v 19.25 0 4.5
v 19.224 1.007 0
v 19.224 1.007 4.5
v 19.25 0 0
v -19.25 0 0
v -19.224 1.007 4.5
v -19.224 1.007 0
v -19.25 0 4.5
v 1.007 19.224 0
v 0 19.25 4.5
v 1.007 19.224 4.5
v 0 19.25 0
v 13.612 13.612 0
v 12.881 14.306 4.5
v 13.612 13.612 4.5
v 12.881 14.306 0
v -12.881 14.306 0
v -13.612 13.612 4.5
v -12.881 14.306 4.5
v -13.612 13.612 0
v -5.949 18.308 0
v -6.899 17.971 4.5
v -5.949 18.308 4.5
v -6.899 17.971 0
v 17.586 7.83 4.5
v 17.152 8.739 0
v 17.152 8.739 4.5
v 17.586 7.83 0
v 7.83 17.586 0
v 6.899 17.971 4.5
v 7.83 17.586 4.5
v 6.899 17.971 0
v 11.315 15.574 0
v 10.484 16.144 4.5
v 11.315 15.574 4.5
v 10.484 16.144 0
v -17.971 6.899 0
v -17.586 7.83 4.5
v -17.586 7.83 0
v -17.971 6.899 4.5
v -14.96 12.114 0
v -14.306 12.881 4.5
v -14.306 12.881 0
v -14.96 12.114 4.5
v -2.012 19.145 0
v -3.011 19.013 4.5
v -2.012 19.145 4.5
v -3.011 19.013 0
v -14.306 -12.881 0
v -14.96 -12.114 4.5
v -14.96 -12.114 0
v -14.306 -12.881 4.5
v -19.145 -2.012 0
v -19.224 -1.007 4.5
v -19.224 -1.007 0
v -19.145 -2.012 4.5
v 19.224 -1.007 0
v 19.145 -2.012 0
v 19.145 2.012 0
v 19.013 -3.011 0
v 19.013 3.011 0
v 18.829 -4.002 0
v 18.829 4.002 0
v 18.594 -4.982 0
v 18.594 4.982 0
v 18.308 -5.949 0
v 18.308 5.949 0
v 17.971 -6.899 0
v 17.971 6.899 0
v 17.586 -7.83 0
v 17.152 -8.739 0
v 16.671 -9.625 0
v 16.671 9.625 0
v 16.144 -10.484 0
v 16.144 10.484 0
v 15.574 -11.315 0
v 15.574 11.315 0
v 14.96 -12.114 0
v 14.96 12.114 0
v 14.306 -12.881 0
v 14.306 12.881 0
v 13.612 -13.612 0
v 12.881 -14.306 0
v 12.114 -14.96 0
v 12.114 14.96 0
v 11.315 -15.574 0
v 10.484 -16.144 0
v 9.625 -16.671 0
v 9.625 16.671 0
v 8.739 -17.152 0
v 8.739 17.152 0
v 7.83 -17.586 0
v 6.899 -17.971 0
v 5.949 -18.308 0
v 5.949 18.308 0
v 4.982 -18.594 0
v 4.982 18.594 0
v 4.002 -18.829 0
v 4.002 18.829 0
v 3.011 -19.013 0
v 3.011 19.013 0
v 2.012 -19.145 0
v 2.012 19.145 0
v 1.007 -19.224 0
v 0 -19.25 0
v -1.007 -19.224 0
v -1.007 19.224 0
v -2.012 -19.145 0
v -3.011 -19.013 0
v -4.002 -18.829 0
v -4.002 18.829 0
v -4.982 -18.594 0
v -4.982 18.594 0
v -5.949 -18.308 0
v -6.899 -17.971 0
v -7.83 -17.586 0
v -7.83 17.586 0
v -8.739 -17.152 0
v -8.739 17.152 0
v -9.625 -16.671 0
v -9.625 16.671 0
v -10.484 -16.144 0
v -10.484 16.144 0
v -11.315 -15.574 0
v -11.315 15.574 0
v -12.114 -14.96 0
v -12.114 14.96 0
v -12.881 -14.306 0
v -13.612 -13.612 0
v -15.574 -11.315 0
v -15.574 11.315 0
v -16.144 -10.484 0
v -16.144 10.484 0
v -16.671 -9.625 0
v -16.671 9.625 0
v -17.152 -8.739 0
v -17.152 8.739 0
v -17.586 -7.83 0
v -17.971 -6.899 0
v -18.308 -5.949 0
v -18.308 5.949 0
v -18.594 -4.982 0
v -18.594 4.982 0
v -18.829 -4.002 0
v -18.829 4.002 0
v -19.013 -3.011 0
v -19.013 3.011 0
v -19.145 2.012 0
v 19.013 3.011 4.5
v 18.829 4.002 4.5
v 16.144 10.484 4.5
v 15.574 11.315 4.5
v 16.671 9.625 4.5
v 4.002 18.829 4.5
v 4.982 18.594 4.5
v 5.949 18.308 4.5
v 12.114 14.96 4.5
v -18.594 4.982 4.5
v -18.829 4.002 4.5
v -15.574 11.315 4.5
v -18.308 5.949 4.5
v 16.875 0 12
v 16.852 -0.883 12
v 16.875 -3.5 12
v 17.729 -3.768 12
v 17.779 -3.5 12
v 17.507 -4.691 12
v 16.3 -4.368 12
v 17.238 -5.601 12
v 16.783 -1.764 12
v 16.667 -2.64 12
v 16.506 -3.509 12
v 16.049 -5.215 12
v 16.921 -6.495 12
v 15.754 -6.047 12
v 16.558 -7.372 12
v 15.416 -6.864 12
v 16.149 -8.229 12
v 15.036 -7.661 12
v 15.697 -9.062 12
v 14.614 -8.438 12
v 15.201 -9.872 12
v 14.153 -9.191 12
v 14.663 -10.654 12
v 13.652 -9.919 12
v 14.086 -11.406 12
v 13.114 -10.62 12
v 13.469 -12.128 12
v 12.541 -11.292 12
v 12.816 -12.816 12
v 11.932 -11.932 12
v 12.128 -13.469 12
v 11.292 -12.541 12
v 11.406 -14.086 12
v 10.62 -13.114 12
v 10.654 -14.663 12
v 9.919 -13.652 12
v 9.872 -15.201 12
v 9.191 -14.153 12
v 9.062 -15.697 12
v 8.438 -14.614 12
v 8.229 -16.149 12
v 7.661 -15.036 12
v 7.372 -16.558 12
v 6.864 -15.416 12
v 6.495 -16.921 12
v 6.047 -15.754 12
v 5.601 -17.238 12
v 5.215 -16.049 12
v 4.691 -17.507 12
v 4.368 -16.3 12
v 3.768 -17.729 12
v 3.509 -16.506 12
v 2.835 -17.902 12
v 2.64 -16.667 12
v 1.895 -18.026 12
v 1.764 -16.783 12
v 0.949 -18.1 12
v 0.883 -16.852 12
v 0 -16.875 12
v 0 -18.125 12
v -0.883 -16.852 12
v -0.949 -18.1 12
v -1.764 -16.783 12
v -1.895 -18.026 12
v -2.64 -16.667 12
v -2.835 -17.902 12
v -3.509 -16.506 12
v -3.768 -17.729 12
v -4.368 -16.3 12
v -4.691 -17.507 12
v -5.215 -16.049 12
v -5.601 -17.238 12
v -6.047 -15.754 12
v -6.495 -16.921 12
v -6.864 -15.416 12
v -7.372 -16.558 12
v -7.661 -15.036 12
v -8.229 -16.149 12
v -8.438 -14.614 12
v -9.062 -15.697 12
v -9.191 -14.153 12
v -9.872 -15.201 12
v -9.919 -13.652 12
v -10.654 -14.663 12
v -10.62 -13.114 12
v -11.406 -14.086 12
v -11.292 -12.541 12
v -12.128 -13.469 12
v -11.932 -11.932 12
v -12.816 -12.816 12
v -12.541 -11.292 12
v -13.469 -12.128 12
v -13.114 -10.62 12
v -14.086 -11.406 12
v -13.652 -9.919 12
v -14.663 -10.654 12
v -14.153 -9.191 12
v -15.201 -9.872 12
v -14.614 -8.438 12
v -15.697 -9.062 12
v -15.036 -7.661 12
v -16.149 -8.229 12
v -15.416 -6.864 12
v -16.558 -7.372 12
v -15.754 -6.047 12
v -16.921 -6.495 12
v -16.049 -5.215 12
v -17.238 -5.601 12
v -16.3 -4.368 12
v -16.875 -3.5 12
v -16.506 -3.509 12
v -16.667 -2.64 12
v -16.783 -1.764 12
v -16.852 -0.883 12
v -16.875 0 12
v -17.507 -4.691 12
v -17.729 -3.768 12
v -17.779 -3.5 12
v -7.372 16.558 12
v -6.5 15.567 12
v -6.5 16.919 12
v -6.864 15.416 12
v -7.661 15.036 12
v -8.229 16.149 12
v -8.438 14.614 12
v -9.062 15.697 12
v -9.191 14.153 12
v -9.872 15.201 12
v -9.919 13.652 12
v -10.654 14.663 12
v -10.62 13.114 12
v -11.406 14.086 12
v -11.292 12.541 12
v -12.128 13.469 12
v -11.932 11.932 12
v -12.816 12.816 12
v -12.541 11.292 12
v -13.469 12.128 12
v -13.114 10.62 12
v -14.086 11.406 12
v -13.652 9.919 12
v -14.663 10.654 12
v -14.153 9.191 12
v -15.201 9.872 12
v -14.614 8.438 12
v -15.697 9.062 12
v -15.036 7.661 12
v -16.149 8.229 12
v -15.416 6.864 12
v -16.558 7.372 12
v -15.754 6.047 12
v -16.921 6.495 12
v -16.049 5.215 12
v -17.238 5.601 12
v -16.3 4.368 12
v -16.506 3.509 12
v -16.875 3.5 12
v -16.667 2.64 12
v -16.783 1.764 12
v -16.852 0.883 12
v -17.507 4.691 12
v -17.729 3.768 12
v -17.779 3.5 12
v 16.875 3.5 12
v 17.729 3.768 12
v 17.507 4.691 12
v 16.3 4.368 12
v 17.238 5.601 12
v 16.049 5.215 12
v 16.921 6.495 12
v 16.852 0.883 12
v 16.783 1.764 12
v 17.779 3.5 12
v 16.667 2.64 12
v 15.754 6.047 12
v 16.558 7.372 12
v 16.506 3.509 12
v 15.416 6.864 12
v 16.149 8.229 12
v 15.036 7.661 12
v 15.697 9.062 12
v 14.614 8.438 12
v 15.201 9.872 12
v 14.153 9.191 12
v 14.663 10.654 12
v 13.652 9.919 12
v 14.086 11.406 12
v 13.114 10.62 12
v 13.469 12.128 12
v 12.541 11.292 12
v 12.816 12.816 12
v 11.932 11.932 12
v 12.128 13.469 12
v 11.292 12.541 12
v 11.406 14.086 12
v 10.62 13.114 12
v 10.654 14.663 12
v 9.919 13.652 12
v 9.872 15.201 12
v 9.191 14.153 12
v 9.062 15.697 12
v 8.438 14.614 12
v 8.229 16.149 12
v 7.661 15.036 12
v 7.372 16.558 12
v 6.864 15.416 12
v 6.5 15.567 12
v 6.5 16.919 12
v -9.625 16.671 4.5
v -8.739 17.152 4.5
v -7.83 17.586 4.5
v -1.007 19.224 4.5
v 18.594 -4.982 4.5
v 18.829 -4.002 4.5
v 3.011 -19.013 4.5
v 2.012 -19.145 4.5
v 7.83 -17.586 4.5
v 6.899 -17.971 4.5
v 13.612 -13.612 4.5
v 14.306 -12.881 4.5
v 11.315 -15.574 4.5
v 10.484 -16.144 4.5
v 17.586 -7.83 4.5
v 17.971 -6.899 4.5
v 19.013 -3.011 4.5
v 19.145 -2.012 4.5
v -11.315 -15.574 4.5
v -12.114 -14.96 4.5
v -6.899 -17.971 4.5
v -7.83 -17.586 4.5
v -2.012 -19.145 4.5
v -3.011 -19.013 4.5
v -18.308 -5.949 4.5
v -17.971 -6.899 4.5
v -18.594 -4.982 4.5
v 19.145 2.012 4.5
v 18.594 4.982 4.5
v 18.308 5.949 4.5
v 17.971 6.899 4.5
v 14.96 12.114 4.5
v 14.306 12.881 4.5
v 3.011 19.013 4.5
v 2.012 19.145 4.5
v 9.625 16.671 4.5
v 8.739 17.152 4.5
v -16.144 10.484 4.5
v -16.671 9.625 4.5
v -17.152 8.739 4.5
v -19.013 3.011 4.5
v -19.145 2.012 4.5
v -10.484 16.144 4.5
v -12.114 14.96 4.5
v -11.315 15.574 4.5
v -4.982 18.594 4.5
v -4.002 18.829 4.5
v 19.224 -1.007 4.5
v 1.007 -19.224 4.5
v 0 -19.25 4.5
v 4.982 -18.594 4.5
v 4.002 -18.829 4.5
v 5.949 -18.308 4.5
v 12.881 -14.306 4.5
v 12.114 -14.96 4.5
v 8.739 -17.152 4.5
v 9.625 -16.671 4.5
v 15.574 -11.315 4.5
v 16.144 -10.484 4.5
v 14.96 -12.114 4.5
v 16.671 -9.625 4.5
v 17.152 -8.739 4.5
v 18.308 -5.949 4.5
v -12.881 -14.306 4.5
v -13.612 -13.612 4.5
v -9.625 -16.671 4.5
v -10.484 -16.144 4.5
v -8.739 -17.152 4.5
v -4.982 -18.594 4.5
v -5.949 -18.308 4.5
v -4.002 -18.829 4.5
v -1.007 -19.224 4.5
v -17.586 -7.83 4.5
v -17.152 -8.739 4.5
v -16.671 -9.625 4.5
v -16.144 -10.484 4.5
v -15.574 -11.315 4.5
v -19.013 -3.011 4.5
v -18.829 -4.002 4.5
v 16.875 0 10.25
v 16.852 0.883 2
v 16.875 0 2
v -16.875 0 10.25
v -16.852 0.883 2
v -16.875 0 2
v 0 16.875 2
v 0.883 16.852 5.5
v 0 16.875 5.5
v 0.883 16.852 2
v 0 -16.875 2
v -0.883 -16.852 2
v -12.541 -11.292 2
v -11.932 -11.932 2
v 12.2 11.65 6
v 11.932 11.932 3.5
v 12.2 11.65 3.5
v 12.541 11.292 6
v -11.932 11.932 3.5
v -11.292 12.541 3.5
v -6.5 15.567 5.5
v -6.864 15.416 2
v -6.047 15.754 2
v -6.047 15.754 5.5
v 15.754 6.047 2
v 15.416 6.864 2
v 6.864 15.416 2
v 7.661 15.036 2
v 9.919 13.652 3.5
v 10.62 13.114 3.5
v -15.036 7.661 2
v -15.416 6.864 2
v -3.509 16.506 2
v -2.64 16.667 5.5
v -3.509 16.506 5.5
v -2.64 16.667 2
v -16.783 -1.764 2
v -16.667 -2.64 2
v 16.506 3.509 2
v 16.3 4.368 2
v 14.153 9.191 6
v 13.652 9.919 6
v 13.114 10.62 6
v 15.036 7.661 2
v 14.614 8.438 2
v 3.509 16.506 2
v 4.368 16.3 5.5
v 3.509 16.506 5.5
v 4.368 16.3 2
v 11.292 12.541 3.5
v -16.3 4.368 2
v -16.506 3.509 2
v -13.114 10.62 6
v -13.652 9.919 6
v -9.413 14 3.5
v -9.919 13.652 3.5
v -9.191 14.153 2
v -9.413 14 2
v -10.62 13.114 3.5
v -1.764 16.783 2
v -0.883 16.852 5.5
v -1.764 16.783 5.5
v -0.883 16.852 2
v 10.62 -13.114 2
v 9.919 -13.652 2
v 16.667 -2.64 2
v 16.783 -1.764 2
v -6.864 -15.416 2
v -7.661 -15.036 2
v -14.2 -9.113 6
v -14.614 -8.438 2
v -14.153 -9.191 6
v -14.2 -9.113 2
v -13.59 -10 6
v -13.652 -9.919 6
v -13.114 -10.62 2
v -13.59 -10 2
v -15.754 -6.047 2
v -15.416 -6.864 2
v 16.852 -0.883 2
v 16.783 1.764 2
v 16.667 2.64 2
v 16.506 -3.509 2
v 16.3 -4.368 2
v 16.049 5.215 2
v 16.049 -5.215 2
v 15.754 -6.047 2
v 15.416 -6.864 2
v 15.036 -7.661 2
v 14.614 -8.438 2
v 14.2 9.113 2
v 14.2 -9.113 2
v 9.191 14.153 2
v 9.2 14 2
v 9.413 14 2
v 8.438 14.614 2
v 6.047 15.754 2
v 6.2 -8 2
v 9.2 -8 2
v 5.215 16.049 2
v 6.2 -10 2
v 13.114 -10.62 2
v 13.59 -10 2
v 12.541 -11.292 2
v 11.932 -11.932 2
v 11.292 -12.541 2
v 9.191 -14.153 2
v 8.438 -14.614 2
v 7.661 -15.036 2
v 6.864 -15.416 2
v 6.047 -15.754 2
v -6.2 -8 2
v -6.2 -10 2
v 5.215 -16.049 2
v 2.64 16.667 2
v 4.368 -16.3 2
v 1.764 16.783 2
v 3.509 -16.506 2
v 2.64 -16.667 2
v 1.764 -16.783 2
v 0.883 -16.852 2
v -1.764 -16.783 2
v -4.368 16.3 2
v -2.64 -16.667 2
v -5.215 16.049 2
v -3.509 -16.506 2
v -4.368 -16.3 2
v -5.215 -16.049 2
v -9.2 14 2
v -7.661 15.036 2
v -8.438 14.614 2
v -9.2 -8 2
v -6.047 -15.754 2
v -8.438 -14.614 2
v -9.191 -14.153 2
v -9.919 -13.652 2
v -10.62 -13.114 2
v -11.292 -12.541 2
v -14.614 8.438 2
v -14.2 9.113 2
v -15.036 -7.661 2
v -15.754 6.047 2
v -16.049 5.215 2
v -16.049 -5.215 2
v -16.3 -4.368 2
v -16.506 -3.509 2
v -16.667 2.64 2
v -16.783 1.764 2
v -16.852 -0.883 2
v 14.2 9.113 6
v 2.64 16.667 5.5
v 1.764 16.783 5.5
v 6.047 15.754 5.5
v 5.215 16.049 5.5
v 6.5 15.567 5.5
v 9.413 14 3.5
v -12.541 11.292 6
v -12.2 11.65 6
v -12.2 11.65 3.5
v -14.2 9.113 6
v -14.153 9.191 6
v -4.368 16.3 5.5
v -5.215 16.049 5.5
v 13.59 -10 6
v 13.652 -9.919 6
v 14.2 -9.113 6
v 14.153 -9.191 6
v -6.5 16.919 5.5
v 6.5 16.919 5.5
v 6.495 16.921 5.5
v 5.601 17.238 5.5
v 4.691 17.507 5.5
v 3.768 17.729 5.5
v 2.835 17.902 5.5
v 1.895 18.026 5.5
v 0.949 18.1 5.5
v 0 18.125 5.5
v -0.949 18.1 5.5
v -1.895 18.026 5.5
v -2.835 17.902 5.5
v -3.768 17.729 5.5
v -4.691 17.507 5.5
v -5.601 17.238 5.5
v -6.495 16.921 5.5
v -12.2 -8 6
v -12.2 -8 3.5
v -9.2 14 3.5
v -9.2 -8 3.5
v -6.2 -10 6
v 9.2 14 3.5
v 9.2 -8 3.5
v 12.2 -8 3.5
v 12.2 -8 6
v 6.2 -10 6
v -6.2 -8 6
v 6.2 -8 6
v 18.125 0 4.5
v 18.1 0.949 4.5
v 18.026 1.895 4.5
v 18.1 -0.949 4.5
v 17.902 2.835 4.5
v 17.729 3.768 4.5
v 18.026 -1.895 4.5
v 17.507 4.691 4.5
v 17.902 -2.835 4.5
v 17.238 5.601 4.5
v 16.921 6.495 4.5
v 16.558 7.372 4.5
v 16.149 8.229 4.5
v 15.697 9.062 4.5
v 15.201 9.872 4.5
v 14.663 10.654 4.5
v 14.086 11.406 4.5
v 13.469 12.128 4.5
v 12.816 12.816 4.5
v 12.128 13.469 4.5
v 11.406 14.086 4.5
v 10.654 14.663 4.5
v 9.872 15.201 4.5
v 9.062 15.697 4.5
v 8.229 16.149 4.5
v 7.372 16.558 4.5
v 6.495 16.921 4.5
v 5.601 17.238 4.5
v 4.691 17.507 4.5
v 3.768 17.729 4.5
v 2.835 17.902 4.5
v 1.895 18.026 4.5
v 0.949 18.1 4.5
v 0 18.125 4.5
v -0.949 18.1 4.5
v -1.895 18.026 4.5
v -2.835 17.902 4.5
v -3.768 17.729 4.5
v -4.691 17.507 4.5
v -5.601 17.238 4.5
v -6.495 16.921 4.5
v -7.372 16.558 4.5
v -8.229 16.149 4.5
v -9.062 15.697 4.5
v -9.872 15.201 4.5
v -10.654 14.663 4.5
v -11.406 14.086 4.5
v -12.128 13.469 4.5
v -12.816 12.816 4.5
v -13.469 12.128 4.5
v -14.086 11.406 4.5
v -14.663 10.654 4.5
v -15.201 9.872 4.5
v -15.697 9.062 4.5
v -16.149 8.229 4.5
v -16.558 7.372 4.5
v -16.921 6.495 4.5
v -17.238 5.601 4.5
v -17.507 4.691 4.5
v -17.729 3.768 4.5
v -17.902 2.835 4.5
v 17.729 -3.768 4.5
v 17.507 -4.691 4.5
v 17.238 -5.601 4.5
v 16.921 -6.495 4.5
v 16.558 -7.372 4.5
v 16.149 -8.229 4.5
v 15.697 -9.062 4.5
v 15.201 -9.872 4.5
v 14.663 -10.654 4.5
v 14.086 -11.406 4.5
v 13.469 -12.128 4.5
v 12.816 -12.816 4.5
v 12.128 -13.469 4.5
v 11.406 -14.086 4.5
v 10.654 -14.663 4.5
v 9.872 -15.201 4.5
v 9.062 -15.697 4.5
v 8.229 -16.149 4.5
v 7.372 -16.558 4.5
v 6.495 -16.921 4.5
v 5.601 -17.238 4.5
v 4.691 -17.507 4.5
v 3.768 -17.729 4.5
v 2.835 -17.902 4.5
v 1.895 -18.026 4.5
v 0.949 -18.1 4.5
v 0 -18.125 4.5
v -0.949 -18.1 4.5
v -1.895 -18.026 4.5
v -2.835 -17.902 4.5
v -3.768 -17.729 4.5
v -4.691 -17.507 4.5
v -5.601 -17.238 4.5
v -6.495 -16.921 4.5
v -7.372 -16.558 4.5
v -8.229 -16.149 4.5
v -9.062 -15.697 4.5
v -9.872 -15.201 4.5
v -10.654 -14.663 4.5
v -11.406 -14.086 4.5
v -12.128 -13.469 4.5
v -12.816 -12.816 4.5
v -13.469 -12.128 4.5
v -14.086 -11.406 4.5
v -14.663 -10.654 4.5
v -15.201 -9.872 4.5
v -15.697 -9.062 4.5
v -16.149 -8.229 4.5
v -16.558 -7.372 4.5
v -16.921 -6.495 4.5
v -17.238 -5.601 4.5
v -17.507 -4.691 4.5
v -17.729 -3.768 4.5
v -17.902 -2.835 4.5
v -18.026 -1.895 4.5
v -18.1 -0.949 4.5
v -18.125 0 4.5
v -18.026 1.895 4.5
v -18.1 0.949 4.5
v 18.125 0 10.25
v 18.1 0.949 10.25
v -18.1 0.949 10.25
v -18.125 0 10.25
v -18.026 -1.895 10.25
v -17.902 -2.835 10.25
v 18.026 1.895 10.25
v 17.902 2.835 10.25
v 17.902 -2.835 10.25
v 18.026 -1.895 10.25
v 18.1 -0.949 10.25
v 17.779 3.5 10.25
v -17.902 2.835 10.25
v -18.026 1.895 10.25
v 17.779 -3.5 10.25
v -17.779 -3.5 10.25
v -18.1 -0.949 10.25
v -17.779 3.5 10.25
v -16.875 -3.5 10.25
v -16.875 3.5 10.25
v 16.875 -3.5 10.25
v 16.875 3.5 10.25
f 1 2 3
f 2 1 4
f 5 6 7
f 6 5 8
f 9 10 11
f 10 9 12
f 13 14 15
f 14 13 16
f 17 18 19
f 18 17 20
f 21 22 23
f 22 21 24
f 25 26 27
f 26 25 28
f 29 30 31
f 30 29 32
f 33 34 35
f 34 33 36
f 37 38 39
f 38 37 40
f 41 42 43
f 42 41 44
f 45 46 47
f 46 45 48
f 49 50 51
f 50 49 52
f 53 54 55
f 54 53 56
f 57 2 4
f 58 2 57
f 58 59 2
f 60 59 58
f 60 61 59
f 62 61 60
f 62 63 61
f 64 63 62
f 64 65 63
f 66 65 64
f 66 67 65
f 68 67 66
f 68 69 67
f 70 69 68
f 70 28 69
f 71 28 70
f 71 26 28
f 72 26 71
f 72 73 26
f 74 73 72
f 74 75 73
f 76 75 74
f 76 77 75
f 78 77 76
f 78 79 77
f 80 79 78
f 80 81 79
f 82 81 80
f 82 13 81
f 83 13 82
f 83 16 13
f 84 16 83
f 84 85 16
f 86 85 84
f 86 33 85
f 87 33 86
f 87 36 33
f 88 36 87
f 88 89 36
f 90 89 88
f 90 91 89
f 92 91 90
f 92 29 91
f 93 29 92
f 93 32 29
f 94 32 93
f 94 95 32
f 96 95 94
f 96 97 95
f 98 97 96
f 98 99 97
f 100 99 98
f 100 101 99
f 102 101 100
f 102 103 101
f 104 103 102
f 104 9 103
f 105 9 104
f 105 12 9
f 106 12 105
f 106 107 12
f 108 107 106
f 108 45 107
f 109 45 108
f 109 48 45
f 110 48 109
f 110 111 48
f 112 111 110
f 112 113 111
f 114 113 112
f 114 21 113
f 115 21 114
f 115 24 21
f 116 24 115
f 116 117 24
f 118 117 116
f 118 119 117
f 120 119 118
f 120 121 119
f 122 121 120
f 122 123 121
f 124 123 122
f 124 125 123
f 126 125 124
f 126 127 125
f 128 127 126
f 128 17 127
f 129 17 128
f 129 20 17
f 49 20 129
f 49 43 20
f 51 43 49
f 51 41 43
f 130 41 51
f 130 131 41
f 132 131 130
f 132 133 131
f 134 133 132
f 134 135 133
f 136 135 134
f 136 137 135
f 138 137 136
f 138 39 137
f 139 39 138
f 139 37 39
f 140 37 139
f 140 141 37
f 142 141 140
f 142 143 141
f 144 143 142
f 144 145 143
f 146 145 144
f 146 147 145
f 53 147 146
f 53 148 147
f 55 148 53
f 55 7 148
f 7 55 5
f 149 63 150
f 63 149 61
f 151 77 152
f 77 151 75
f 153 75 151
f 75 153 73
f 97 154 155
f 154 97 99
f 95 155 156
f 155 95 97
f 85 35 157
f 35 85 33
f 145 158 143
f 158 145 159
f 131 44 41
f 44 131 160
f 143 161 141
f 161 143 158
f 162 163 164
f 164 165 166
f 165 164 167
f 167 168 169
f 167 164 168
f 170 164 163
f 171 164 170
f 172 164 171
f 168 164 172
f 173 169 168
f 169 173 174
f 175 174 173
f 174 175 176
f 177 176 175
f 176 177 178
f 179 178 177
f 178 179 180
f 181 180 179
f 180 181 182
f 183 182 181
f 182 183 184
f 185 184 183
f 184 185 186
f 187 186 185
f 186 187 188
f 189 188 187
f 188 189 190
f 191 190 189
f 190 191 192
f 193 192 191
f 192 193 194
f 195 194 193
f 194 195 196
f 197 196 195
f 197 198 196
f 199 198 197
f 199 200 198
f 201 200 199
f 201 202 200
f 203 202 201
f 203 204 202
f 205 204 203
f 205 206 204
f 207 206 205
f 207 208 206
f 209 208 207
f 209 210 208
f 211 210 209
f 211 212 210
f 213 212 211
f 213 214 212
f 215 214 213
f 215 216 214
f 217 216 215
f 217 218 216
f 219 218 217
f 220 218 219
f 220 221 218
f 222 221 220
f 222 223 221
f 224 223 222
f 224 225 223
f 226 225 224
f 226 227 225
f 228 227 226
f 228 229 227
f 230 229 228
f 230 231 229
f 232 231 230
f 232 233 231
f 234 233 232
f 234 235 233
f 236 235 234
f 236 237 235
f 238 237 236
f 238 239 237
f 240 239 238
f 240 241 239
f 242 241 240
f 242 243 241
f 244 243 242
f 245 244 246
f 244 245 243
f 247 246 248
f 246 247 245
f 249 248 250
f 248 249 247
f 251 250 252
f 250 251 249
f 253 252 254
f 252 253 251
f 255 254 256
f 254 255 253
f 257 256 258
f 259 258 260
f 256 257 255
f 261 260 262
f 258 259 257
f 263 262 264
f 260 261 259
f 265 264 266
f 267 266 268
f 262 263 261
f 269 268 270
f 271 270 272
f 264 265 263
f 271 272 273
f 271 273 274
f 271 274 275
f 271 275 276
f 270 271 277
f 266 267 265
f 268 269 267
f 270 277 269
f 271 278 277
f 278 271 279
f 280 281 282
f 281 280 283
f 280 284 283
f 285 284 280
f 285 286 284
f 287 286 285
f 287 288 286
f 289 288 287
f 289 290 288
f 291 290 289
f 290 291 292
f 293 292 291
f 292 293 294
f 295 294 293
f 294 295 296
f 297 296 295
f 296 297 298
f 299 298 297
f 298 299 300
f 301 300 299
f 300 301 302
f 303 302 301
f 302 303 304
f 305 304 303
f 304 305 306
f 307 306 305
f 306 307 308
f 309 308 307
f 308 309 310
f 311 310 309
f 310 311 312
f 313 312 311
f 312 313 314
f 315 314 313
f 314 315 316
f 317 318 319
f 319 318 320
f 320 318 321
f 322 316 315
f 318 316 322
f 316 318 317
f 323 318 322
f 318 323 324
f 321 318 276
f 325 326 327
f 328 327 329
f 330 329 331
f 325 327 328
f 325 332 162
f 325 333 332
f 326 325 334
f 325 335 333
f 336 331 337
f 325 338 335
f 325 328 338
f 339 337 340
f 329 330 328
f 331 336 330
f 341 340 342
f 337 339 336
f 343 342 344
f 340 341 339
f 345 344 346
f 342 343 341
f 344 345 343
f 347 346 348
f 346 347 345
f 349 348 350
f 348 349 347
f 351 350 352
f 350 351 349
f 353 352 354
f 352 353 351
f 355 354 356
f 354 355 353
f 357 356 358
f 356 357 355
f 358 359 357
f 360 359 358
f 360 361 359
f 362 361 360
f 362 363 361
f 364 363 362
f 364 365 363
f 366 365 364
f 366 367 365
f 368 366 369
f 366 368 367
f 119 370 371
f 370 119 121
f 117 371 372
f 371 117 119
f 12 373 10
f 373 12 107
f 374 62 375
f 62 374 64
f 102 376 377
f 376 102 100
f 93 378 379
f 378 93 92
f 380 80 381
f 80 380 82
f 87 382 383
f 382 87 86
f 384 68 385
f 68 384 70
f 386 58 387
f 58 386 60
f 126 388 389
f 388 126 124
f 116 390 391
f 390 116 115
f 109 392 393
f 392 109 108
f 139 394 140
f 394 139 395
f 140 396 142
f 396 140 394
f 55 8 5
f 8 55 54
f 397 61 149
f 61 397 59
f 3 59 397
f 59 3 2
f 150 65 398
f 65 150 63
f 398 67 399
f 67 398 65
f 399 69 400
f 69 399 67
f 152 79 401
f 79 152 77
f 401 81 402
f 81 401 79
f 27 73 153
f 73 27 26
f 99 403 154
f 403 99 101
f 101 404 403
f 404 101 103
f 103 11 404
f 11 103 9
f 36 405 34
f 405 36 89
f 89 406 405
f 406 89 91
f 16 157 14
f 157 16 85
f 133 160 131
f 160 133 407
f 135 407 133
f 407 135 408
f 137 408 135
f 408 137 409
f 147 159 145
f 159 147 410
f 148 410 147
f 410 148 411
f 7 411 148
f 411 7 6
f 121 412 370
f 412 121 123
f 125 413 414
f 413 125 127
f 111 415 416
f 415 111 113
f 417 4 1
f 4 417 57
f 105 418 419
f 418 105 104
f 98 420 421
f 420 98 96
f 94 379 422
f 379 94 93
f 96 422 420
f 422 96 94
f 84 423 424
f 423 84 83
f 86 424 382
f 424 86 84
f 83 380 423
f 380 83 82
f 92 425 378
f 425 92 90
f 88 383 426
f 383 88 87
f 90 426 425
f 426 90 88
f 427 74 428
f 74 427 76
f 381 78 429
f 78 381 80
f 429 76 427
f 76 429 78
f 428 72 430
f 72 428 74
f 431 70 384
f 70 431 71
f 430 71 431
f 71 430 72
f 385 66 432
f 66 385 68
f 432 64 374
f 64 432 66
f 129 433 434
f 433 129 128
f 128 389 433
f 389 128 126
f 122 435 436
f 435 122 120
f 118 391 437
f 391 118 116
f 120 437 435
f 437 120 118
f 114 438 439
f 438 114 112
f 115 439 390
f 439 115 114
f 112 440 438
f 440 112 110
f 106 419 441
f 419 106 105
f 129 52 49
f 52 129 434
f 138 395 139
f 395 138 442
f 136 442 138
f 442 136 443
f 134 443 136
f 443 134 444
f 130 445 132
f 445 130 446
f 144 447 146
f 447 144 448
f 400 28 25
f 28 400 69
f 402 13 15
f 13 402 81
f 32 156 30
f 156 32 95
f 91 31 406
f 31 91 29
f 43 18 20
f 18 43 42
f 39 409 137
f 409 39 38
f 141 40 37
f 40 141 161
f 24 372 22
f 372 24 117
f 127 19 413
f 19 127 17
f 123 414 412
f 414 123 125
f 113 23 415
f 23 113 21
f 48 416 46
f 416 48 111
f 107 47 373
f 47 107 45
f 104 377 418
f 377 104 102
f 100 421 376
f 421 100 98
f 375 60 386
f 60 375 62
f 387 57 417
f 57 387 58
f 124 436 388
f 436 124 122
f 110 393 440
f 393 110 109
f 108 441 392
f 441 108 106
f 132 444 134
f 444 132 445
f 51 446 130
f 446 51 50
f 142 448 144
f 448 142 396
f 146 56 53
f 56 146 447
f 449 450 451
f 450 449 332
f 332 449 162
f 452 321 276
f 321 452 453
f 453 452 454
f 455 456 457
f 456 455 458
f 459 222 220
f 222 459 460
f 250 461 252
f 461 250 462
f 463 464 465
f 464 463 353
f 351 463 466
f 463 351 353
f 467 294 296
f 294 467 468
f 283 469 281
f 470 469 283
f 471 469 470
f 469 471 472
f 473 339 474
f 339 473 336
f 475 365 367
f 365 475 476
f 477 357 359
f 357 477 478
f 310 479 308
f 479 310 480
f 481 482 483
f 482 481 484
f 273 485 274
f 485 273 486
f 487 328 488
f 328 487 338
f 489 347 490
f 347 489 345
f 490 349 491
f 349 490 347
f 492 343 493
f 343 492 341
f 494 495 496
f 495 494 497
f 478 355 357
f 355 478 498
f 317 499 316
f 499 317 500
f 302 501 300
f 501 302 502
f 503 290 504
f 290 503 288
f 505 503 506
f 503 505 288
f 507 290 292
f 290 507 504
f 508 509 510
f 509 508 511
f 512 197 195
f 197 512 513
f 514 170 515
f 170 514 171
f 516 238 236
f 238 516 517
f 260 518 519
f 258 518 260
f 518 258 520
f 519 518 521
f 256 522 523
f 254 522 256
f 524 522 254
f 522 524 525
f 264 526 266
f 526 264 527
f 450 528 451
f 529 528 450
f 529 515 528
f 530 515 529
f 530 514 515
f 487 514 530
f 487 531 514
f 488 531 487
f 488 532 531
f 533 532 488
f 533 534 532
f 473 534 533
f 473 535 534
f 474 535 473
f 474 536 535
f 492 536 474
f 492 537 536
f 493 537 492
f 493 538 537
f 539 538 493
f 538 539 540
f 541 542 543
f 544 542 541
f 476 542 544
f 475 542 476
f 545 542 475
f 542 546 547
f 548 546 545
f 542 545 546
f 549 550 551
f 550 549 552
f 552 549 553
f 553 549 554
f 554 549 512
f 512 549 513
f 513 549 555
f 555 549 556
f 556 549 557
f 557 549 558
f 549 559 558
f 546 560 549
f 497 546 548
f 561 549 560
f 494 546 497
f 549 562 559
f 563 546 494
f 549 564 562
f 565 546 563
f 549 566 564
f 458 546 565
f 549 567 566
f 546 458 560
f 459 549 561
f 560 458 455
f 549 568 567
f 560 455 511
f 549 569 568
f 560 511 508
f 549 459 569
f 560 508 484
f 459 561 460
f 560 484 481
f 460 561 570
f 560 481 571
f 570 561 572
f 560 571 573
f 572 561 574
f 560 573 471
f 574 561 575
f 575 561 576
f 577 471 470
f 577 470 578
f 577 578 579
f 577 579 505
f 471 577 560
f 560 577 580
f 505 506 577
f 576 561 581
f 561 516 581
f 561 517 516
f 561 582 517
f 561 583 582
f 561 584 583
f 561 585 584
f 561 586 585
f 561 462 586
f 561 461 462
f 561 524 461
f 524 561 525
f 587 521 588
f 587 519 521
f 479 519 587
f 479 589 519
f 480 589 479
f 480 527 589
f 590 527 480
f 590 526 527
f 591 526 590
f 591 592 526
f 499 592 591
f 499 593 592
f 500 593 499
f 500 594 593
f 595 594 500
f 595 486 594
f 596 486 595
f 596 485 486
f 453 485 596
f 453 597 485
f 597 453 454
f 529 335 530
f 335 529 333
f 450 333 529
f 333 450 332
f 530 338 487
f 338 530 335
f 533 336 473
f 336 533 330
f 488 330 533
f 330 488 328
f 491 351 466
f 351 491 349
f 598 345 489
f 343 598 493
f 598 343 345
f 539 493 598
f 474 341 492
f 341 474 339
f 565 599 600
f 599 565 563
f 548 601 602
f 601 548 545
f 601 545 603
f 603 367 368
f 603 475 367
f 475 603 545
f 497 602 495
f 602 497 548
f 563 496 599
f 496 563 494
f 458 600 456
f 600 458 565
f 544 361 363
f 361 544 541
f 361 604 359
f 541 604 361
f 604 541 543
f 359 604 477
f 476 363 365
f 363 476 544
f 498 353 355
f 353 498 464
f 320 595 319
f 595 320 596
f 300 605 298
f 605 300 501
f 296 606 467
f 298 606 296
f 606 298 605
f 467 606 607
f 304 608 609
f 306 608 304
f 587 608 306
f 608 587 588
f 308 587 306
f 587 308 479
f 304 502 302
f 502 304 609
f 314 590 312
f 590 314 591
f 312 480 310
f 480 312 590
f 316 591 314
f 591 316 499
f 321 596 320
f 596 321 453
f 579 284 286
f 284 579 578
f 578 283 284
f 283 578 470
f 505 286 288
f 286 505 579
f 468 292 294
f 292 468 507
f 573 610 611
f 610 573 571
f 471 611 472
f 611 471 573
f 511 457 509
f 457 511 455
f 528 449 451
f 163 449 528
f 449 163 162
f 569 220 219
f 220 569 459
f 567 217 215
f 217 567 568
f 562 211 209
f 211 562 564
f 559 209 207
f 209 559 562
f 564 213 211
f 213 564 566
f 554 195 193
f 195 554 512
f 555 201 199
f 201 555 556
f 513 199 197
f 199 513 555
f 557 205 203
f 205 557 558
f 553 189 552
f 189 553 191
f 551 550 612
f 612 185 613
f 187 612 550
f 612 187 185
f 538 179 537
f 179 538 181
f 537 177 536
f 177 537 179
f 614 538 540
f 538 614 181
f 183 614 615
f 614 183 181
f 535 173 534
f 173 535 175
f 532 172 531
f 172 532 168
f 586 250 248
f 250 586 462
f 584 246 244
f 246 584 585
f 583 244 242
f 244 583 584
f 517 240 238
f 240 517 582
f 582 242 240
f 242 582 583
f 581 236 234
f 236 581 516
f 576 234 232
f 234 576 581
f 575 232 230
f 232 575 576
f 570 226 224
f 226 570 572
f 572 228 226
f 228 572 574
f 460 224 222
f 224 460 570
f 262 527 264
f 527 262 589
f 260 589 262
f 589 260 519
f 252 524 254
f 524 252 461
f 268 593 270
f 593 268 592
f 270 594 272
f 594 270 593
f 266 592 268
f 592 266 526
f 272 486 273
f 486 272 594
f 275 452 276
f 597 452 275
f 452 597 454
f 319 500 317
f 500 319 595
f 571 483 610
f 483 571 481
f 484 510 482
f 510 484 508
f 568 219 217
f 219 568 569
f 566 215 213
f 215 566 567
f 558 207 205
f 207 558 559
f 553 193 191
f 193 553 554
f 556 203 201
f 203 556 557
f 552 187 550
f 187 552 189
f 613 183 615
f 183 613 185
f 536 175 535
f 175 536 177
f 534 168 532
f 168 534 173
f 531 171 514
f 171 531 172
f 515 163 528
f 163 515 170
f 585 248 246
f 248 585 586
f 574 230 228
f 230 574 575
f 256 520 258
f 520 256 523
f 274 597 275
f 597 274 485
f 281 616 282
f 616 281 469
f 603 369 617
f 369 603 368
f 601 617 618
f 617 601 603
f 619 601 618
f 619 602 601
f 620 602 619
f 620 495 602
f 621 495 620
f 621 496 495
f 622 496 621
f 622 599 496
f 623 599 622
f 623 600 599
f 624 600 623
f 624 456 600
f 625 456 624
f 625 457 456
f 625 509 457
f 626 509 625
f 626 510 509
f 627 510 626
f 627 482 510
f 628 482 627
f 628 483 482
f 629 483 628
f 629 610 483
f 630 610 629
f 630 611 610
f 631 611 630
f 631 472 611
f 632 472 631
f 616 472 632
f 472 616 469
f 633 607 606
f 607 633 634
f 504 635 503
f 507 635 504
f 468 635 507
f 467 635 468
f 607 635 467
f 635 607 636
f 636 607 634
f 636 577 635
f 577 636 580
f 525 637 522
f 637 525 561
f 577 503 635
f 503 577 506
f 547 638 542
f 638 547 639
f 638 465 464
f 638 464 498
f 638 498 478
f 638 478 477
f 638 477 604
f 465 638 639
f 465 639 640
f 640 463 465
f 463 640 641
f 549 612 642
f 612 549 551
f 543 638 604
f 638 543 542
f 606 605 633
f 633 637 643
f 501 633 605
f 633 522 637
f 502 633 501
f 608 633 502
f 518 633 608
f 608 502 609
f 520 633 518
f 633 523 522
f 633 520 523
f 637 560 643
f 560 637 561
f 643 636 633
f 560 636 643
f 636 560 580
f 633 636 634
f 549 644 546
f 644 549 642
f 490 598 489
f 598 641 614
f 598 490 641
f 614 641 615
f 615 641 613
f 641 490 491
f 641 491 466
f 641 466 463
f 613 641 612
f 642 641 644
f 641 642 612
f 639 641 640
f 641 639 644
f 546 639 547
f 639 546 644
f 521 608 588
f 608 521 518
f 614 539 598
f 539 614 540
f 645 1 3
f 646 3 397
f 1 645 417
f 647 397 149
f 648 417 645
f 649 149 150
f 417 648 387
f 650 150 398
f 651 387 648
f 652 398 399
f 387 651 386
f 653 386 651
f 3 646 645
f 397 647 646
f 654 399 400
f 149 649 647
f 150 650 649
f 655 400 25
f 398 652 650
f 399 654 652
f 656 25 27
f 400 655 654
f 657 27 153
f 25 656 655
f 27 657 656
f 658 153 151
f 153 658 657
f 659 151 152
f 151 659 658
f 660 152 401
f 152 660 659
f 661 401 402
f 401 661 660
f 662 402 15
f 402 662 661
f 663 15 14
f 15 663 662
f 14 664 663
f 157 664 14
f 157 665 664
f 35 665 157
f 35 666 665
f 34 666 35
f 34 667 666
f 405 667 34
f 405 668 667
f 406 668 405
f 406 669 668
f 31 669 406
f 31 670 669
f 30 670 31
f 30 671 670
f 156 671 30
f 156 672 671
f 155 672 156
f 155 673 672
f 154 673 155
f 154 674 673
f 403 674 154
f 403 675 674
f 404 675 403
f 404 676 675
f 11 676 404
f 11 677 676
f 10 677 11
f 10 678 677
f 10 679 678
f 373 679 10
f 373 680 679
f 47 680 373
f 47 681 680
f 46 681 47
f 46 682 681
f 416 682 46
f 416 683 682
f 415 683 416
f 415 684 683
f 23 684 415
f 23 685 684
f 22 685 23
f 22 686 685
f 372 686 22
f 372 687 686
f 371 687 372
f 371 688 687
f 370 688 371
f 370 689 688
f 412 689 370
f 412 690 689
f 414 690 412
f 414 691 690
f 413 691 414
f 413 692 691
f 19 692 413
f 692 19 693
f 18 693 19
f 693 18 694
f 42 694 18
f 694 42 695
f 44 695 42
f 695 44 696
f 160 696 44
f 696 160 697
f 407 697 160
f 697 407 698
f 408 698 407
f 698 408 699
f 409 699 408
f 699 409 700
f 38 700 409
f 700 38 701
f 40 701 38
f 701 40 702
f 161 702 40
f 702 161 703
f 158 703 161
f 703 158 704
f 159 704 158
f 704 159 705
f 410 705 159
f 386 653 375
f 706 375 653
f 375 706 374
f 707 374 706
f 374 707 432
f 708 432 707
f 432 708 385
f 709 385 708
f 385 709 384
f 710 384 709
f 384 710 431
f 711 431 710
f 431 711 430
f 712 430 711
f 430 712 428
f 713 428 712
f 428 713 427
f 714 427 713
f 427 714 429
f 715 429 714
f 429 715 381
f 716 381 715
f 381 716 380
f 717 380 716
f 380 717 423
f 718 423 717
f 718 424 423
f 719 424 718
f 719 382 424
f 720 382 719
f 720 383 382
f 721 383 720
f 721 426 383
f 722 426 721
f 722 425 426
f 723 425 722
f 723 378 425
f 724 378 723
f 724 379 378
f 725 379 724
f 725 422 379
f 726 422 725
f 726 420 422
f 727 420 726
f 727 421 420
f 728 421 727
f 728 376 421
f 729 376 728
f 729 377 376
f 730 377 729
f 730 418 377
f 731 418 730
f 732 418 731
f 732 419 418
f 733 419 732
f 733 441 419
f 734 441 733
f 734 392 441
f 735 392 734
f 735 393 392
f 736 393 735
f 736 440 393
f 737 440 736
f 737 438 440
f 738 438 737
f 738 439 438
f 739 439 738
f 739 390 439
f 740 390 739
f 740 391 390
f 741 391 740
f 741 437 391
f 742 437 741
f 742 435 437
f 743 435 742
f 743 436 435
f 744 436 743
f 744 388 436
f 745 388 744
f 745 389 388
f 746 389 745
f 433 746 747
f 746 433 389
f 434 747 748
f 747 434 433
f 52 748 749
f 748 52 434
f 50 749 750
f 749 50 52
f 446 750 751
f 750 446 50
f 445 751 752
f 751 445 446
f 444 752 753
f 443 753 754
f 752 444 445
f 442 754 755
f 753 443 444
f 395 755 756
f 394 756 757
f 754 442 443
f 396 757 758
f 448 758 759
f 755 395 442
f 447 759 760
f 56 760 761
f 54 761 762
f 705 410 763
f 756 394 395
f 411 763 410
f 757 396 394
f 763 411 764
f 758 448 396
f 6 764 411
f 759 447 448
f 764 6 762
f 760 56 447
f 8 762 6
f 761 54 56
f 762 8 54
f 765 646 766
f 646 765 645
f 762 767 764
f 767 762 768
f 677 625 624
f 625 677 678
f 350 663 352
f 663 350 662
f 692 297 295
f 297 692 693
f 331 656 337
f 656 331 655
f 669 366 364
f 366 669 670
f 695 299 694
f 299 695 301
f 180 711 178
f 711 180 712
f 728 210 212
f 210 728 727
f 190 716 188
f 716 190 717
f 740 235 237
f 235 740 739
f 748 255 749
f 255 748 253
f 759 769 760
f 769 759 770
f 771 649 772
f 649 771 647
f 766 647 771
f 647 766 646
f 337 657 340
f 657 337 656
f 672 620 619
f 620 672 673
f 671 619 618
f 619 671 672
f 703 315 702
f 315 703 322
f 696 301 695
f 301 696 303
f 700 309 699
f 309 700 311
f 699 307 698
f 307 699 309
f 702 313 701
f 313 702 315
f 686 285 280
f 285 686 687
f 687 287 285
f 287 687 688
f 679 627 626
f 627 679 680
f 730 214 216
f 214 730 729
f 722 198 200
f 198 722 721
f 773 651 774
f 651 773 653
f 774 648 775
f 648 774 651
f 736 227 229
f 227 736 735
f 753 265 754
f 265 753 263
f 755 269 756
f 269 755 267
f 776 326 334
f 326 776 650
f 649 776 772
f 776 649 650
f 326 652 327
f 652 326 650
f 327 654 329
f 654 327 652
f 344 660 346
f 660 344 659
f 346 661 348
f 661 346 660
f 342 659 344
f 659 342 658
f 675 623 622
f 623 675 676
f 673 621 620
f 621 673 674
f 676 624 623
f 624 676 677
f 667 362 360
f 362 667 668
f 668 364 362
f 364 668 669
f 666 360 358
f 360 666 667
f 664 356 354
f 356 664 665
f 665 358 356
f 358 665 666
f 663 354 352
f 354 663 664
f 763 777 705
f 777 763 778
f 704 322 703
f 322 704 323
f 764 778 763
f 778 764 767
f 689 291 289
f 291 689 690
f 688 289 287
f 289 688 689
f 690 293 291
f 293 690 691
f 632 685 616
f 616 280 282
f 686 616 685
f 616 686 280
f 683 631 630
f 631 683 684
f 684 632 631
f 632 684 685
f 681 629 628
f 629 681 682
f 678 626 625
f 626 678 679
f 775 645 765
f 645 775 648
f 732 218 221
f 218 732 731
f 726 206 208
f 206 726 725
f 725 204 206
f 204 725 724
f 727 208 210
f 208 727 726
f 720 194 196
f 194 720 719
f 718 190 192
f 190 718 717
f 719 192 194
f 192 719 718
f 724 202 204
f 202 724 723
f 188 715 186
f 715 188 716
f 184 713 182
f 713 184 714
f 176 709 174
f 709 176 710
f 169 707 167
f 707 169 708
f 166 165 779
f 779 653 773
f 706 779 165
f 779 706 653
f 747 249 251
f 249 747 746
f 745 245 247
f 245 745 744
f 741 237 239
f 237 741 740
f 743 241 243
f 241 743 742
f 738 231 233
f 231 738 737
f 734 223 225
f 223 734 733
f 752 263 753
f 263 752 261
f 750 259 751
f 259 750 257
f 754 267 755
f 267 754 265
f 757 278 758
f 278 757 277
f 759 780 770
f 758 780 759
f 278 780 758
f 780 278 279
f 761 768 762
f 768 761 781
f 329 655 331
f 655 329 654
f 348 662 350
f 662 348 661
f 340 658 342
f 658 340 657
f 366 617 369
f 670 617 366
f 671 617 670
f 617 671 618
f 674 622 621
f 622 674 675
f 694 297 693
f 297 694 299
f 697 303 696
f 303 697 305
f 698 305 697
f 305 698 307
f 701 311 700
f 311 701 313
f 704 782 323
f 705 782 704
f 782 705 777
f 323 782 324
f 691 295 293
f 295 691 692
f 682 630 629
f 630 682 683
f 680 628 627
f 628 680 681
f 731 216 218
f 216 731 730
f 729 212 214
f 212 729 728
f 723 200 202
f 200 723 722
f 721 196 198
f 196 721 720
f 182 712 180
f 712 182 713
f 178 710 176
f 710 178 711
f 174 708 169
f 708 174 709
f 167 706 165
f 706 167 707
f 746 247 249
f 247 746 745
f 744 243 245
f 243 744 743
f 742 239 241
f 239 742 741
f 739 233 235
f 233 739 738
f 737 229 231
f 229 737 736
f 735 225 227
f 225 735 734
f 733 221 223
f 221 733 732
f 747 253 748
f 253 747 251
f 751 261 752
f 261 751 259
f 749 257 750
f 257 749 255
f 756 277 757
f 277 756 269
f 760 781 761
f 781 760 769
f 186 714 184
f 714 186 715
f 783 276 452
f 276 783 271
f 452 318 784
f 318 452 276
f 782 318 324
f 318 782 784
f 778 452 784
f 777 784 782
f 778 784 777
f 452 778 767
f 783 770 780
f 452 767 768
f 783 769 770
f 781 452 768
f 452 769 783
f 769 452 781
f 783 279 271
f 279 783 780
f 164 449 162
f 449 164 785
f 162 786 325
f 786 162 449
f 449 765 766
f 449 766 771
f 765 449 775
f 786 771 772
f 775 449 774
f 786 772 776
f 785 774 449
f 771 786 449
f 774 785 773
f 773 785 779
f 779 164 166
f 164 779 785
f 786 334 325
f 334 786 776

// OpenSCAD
include <BOSL/constants.scad>
use <BOSL/shapes.scad>
use <BOSL/transforms.scad>
use <BOSL/masks.scad>

  
$fn=120; //circle smoothness

height = 12;
sensorCutout = 35.25;
snapLipOverlap = 6.5;
controller = false; // true=this is a controller board (for mini) -- false=regular setup 


difference() {
  union() {
    main();
    //forward(4) qtpy();
    forward(10) BoB();
  }
 color("red") up(height-snapLipOverlap-1) tube(od=sensorCutout+5, id=sensorCutout+1, h=10); // snap lip
 
 if (controller) {
  color("salmon") forward(22) left(7/2) up(2) cube([7,10, 1]); //slot for ribbon cable
 }
 
   // MKIII GlidePoint alignment (sides)
  if (!controller) {
    tabHeight = height-snapLipOverlap;
    color("blue")   up(height) left(17.5) cuboid([1.25, 7, 3.5]); 
    color("blue")  up(height) right(17.5) cuboid([1.25, 7, 3.5]); 
  }
 
 
  
}
  
module main(){
  difference(){
    color("lime") cylinder(h=height, d=sensorCutout+3.25); //disc object
     color("yellow") up(2) cylinder(h=height, d=sensorCutout-1.5); // sensor cutout -- since bottom, we can bulk up slightly
     color("peru") translate([-(13/2),(sensorCutout/2)-5, 5.5]) cube([13,10,6.5+2]); //usb cutout
  }
}  

module BoB() {
  color("yellowgreen") left(12.2) cube([3, 24, 3.5]); // PCB Rail
  color("yellowgreen") right(12.2-3) cube([3, 24, 3.5]); // PCB Rail
  color("sienna") left(12.2) forward(0) cube([6, 2, 6]); // end stop
  color("sienna") right(6.2) forward(0) cube([6, 2, 6]); // end stop
  color("maroon") left(14.2) forward(0) cube([2, 22, 6]); // side stop
  color("maroon") right(12.2) forward(0) cube([2, 22, 6]); // side stop
}

module qtpy() {
     //riser for QT PY
    color("teal") translate([-(12/2), -2.5, 1]) cube([12,23,2]);
    //bumper for QT PY
    color("CadetBlue") translate([-(18/2), -2.5, 1]) cube([18, 1.5, 4.5]); 
    //side bumpers for QT PY
    color("royalblue") translate([-10.5, -2.5, 1]) cube([1.5, 21.5, 4.5]);
    color("royalblue") translate([+9, -2.5, 1]) cube([1.5, 21.5, 4.5]);
}

module mousecable() {
  // slots -- for easier install
  left(12) up(9) back(15) #cuboid([3,10, 10]);
  right(12) up(9) back(15) #cuboid([3,10, 10]);
  // holes -- a pain to install
  //left(13) up(4) back(22) xrot(90) #cylinder(h=10, d=3);
  //right(13) up(4) back(22) xrot(90) #cylinder(h=10, d=3);
}
